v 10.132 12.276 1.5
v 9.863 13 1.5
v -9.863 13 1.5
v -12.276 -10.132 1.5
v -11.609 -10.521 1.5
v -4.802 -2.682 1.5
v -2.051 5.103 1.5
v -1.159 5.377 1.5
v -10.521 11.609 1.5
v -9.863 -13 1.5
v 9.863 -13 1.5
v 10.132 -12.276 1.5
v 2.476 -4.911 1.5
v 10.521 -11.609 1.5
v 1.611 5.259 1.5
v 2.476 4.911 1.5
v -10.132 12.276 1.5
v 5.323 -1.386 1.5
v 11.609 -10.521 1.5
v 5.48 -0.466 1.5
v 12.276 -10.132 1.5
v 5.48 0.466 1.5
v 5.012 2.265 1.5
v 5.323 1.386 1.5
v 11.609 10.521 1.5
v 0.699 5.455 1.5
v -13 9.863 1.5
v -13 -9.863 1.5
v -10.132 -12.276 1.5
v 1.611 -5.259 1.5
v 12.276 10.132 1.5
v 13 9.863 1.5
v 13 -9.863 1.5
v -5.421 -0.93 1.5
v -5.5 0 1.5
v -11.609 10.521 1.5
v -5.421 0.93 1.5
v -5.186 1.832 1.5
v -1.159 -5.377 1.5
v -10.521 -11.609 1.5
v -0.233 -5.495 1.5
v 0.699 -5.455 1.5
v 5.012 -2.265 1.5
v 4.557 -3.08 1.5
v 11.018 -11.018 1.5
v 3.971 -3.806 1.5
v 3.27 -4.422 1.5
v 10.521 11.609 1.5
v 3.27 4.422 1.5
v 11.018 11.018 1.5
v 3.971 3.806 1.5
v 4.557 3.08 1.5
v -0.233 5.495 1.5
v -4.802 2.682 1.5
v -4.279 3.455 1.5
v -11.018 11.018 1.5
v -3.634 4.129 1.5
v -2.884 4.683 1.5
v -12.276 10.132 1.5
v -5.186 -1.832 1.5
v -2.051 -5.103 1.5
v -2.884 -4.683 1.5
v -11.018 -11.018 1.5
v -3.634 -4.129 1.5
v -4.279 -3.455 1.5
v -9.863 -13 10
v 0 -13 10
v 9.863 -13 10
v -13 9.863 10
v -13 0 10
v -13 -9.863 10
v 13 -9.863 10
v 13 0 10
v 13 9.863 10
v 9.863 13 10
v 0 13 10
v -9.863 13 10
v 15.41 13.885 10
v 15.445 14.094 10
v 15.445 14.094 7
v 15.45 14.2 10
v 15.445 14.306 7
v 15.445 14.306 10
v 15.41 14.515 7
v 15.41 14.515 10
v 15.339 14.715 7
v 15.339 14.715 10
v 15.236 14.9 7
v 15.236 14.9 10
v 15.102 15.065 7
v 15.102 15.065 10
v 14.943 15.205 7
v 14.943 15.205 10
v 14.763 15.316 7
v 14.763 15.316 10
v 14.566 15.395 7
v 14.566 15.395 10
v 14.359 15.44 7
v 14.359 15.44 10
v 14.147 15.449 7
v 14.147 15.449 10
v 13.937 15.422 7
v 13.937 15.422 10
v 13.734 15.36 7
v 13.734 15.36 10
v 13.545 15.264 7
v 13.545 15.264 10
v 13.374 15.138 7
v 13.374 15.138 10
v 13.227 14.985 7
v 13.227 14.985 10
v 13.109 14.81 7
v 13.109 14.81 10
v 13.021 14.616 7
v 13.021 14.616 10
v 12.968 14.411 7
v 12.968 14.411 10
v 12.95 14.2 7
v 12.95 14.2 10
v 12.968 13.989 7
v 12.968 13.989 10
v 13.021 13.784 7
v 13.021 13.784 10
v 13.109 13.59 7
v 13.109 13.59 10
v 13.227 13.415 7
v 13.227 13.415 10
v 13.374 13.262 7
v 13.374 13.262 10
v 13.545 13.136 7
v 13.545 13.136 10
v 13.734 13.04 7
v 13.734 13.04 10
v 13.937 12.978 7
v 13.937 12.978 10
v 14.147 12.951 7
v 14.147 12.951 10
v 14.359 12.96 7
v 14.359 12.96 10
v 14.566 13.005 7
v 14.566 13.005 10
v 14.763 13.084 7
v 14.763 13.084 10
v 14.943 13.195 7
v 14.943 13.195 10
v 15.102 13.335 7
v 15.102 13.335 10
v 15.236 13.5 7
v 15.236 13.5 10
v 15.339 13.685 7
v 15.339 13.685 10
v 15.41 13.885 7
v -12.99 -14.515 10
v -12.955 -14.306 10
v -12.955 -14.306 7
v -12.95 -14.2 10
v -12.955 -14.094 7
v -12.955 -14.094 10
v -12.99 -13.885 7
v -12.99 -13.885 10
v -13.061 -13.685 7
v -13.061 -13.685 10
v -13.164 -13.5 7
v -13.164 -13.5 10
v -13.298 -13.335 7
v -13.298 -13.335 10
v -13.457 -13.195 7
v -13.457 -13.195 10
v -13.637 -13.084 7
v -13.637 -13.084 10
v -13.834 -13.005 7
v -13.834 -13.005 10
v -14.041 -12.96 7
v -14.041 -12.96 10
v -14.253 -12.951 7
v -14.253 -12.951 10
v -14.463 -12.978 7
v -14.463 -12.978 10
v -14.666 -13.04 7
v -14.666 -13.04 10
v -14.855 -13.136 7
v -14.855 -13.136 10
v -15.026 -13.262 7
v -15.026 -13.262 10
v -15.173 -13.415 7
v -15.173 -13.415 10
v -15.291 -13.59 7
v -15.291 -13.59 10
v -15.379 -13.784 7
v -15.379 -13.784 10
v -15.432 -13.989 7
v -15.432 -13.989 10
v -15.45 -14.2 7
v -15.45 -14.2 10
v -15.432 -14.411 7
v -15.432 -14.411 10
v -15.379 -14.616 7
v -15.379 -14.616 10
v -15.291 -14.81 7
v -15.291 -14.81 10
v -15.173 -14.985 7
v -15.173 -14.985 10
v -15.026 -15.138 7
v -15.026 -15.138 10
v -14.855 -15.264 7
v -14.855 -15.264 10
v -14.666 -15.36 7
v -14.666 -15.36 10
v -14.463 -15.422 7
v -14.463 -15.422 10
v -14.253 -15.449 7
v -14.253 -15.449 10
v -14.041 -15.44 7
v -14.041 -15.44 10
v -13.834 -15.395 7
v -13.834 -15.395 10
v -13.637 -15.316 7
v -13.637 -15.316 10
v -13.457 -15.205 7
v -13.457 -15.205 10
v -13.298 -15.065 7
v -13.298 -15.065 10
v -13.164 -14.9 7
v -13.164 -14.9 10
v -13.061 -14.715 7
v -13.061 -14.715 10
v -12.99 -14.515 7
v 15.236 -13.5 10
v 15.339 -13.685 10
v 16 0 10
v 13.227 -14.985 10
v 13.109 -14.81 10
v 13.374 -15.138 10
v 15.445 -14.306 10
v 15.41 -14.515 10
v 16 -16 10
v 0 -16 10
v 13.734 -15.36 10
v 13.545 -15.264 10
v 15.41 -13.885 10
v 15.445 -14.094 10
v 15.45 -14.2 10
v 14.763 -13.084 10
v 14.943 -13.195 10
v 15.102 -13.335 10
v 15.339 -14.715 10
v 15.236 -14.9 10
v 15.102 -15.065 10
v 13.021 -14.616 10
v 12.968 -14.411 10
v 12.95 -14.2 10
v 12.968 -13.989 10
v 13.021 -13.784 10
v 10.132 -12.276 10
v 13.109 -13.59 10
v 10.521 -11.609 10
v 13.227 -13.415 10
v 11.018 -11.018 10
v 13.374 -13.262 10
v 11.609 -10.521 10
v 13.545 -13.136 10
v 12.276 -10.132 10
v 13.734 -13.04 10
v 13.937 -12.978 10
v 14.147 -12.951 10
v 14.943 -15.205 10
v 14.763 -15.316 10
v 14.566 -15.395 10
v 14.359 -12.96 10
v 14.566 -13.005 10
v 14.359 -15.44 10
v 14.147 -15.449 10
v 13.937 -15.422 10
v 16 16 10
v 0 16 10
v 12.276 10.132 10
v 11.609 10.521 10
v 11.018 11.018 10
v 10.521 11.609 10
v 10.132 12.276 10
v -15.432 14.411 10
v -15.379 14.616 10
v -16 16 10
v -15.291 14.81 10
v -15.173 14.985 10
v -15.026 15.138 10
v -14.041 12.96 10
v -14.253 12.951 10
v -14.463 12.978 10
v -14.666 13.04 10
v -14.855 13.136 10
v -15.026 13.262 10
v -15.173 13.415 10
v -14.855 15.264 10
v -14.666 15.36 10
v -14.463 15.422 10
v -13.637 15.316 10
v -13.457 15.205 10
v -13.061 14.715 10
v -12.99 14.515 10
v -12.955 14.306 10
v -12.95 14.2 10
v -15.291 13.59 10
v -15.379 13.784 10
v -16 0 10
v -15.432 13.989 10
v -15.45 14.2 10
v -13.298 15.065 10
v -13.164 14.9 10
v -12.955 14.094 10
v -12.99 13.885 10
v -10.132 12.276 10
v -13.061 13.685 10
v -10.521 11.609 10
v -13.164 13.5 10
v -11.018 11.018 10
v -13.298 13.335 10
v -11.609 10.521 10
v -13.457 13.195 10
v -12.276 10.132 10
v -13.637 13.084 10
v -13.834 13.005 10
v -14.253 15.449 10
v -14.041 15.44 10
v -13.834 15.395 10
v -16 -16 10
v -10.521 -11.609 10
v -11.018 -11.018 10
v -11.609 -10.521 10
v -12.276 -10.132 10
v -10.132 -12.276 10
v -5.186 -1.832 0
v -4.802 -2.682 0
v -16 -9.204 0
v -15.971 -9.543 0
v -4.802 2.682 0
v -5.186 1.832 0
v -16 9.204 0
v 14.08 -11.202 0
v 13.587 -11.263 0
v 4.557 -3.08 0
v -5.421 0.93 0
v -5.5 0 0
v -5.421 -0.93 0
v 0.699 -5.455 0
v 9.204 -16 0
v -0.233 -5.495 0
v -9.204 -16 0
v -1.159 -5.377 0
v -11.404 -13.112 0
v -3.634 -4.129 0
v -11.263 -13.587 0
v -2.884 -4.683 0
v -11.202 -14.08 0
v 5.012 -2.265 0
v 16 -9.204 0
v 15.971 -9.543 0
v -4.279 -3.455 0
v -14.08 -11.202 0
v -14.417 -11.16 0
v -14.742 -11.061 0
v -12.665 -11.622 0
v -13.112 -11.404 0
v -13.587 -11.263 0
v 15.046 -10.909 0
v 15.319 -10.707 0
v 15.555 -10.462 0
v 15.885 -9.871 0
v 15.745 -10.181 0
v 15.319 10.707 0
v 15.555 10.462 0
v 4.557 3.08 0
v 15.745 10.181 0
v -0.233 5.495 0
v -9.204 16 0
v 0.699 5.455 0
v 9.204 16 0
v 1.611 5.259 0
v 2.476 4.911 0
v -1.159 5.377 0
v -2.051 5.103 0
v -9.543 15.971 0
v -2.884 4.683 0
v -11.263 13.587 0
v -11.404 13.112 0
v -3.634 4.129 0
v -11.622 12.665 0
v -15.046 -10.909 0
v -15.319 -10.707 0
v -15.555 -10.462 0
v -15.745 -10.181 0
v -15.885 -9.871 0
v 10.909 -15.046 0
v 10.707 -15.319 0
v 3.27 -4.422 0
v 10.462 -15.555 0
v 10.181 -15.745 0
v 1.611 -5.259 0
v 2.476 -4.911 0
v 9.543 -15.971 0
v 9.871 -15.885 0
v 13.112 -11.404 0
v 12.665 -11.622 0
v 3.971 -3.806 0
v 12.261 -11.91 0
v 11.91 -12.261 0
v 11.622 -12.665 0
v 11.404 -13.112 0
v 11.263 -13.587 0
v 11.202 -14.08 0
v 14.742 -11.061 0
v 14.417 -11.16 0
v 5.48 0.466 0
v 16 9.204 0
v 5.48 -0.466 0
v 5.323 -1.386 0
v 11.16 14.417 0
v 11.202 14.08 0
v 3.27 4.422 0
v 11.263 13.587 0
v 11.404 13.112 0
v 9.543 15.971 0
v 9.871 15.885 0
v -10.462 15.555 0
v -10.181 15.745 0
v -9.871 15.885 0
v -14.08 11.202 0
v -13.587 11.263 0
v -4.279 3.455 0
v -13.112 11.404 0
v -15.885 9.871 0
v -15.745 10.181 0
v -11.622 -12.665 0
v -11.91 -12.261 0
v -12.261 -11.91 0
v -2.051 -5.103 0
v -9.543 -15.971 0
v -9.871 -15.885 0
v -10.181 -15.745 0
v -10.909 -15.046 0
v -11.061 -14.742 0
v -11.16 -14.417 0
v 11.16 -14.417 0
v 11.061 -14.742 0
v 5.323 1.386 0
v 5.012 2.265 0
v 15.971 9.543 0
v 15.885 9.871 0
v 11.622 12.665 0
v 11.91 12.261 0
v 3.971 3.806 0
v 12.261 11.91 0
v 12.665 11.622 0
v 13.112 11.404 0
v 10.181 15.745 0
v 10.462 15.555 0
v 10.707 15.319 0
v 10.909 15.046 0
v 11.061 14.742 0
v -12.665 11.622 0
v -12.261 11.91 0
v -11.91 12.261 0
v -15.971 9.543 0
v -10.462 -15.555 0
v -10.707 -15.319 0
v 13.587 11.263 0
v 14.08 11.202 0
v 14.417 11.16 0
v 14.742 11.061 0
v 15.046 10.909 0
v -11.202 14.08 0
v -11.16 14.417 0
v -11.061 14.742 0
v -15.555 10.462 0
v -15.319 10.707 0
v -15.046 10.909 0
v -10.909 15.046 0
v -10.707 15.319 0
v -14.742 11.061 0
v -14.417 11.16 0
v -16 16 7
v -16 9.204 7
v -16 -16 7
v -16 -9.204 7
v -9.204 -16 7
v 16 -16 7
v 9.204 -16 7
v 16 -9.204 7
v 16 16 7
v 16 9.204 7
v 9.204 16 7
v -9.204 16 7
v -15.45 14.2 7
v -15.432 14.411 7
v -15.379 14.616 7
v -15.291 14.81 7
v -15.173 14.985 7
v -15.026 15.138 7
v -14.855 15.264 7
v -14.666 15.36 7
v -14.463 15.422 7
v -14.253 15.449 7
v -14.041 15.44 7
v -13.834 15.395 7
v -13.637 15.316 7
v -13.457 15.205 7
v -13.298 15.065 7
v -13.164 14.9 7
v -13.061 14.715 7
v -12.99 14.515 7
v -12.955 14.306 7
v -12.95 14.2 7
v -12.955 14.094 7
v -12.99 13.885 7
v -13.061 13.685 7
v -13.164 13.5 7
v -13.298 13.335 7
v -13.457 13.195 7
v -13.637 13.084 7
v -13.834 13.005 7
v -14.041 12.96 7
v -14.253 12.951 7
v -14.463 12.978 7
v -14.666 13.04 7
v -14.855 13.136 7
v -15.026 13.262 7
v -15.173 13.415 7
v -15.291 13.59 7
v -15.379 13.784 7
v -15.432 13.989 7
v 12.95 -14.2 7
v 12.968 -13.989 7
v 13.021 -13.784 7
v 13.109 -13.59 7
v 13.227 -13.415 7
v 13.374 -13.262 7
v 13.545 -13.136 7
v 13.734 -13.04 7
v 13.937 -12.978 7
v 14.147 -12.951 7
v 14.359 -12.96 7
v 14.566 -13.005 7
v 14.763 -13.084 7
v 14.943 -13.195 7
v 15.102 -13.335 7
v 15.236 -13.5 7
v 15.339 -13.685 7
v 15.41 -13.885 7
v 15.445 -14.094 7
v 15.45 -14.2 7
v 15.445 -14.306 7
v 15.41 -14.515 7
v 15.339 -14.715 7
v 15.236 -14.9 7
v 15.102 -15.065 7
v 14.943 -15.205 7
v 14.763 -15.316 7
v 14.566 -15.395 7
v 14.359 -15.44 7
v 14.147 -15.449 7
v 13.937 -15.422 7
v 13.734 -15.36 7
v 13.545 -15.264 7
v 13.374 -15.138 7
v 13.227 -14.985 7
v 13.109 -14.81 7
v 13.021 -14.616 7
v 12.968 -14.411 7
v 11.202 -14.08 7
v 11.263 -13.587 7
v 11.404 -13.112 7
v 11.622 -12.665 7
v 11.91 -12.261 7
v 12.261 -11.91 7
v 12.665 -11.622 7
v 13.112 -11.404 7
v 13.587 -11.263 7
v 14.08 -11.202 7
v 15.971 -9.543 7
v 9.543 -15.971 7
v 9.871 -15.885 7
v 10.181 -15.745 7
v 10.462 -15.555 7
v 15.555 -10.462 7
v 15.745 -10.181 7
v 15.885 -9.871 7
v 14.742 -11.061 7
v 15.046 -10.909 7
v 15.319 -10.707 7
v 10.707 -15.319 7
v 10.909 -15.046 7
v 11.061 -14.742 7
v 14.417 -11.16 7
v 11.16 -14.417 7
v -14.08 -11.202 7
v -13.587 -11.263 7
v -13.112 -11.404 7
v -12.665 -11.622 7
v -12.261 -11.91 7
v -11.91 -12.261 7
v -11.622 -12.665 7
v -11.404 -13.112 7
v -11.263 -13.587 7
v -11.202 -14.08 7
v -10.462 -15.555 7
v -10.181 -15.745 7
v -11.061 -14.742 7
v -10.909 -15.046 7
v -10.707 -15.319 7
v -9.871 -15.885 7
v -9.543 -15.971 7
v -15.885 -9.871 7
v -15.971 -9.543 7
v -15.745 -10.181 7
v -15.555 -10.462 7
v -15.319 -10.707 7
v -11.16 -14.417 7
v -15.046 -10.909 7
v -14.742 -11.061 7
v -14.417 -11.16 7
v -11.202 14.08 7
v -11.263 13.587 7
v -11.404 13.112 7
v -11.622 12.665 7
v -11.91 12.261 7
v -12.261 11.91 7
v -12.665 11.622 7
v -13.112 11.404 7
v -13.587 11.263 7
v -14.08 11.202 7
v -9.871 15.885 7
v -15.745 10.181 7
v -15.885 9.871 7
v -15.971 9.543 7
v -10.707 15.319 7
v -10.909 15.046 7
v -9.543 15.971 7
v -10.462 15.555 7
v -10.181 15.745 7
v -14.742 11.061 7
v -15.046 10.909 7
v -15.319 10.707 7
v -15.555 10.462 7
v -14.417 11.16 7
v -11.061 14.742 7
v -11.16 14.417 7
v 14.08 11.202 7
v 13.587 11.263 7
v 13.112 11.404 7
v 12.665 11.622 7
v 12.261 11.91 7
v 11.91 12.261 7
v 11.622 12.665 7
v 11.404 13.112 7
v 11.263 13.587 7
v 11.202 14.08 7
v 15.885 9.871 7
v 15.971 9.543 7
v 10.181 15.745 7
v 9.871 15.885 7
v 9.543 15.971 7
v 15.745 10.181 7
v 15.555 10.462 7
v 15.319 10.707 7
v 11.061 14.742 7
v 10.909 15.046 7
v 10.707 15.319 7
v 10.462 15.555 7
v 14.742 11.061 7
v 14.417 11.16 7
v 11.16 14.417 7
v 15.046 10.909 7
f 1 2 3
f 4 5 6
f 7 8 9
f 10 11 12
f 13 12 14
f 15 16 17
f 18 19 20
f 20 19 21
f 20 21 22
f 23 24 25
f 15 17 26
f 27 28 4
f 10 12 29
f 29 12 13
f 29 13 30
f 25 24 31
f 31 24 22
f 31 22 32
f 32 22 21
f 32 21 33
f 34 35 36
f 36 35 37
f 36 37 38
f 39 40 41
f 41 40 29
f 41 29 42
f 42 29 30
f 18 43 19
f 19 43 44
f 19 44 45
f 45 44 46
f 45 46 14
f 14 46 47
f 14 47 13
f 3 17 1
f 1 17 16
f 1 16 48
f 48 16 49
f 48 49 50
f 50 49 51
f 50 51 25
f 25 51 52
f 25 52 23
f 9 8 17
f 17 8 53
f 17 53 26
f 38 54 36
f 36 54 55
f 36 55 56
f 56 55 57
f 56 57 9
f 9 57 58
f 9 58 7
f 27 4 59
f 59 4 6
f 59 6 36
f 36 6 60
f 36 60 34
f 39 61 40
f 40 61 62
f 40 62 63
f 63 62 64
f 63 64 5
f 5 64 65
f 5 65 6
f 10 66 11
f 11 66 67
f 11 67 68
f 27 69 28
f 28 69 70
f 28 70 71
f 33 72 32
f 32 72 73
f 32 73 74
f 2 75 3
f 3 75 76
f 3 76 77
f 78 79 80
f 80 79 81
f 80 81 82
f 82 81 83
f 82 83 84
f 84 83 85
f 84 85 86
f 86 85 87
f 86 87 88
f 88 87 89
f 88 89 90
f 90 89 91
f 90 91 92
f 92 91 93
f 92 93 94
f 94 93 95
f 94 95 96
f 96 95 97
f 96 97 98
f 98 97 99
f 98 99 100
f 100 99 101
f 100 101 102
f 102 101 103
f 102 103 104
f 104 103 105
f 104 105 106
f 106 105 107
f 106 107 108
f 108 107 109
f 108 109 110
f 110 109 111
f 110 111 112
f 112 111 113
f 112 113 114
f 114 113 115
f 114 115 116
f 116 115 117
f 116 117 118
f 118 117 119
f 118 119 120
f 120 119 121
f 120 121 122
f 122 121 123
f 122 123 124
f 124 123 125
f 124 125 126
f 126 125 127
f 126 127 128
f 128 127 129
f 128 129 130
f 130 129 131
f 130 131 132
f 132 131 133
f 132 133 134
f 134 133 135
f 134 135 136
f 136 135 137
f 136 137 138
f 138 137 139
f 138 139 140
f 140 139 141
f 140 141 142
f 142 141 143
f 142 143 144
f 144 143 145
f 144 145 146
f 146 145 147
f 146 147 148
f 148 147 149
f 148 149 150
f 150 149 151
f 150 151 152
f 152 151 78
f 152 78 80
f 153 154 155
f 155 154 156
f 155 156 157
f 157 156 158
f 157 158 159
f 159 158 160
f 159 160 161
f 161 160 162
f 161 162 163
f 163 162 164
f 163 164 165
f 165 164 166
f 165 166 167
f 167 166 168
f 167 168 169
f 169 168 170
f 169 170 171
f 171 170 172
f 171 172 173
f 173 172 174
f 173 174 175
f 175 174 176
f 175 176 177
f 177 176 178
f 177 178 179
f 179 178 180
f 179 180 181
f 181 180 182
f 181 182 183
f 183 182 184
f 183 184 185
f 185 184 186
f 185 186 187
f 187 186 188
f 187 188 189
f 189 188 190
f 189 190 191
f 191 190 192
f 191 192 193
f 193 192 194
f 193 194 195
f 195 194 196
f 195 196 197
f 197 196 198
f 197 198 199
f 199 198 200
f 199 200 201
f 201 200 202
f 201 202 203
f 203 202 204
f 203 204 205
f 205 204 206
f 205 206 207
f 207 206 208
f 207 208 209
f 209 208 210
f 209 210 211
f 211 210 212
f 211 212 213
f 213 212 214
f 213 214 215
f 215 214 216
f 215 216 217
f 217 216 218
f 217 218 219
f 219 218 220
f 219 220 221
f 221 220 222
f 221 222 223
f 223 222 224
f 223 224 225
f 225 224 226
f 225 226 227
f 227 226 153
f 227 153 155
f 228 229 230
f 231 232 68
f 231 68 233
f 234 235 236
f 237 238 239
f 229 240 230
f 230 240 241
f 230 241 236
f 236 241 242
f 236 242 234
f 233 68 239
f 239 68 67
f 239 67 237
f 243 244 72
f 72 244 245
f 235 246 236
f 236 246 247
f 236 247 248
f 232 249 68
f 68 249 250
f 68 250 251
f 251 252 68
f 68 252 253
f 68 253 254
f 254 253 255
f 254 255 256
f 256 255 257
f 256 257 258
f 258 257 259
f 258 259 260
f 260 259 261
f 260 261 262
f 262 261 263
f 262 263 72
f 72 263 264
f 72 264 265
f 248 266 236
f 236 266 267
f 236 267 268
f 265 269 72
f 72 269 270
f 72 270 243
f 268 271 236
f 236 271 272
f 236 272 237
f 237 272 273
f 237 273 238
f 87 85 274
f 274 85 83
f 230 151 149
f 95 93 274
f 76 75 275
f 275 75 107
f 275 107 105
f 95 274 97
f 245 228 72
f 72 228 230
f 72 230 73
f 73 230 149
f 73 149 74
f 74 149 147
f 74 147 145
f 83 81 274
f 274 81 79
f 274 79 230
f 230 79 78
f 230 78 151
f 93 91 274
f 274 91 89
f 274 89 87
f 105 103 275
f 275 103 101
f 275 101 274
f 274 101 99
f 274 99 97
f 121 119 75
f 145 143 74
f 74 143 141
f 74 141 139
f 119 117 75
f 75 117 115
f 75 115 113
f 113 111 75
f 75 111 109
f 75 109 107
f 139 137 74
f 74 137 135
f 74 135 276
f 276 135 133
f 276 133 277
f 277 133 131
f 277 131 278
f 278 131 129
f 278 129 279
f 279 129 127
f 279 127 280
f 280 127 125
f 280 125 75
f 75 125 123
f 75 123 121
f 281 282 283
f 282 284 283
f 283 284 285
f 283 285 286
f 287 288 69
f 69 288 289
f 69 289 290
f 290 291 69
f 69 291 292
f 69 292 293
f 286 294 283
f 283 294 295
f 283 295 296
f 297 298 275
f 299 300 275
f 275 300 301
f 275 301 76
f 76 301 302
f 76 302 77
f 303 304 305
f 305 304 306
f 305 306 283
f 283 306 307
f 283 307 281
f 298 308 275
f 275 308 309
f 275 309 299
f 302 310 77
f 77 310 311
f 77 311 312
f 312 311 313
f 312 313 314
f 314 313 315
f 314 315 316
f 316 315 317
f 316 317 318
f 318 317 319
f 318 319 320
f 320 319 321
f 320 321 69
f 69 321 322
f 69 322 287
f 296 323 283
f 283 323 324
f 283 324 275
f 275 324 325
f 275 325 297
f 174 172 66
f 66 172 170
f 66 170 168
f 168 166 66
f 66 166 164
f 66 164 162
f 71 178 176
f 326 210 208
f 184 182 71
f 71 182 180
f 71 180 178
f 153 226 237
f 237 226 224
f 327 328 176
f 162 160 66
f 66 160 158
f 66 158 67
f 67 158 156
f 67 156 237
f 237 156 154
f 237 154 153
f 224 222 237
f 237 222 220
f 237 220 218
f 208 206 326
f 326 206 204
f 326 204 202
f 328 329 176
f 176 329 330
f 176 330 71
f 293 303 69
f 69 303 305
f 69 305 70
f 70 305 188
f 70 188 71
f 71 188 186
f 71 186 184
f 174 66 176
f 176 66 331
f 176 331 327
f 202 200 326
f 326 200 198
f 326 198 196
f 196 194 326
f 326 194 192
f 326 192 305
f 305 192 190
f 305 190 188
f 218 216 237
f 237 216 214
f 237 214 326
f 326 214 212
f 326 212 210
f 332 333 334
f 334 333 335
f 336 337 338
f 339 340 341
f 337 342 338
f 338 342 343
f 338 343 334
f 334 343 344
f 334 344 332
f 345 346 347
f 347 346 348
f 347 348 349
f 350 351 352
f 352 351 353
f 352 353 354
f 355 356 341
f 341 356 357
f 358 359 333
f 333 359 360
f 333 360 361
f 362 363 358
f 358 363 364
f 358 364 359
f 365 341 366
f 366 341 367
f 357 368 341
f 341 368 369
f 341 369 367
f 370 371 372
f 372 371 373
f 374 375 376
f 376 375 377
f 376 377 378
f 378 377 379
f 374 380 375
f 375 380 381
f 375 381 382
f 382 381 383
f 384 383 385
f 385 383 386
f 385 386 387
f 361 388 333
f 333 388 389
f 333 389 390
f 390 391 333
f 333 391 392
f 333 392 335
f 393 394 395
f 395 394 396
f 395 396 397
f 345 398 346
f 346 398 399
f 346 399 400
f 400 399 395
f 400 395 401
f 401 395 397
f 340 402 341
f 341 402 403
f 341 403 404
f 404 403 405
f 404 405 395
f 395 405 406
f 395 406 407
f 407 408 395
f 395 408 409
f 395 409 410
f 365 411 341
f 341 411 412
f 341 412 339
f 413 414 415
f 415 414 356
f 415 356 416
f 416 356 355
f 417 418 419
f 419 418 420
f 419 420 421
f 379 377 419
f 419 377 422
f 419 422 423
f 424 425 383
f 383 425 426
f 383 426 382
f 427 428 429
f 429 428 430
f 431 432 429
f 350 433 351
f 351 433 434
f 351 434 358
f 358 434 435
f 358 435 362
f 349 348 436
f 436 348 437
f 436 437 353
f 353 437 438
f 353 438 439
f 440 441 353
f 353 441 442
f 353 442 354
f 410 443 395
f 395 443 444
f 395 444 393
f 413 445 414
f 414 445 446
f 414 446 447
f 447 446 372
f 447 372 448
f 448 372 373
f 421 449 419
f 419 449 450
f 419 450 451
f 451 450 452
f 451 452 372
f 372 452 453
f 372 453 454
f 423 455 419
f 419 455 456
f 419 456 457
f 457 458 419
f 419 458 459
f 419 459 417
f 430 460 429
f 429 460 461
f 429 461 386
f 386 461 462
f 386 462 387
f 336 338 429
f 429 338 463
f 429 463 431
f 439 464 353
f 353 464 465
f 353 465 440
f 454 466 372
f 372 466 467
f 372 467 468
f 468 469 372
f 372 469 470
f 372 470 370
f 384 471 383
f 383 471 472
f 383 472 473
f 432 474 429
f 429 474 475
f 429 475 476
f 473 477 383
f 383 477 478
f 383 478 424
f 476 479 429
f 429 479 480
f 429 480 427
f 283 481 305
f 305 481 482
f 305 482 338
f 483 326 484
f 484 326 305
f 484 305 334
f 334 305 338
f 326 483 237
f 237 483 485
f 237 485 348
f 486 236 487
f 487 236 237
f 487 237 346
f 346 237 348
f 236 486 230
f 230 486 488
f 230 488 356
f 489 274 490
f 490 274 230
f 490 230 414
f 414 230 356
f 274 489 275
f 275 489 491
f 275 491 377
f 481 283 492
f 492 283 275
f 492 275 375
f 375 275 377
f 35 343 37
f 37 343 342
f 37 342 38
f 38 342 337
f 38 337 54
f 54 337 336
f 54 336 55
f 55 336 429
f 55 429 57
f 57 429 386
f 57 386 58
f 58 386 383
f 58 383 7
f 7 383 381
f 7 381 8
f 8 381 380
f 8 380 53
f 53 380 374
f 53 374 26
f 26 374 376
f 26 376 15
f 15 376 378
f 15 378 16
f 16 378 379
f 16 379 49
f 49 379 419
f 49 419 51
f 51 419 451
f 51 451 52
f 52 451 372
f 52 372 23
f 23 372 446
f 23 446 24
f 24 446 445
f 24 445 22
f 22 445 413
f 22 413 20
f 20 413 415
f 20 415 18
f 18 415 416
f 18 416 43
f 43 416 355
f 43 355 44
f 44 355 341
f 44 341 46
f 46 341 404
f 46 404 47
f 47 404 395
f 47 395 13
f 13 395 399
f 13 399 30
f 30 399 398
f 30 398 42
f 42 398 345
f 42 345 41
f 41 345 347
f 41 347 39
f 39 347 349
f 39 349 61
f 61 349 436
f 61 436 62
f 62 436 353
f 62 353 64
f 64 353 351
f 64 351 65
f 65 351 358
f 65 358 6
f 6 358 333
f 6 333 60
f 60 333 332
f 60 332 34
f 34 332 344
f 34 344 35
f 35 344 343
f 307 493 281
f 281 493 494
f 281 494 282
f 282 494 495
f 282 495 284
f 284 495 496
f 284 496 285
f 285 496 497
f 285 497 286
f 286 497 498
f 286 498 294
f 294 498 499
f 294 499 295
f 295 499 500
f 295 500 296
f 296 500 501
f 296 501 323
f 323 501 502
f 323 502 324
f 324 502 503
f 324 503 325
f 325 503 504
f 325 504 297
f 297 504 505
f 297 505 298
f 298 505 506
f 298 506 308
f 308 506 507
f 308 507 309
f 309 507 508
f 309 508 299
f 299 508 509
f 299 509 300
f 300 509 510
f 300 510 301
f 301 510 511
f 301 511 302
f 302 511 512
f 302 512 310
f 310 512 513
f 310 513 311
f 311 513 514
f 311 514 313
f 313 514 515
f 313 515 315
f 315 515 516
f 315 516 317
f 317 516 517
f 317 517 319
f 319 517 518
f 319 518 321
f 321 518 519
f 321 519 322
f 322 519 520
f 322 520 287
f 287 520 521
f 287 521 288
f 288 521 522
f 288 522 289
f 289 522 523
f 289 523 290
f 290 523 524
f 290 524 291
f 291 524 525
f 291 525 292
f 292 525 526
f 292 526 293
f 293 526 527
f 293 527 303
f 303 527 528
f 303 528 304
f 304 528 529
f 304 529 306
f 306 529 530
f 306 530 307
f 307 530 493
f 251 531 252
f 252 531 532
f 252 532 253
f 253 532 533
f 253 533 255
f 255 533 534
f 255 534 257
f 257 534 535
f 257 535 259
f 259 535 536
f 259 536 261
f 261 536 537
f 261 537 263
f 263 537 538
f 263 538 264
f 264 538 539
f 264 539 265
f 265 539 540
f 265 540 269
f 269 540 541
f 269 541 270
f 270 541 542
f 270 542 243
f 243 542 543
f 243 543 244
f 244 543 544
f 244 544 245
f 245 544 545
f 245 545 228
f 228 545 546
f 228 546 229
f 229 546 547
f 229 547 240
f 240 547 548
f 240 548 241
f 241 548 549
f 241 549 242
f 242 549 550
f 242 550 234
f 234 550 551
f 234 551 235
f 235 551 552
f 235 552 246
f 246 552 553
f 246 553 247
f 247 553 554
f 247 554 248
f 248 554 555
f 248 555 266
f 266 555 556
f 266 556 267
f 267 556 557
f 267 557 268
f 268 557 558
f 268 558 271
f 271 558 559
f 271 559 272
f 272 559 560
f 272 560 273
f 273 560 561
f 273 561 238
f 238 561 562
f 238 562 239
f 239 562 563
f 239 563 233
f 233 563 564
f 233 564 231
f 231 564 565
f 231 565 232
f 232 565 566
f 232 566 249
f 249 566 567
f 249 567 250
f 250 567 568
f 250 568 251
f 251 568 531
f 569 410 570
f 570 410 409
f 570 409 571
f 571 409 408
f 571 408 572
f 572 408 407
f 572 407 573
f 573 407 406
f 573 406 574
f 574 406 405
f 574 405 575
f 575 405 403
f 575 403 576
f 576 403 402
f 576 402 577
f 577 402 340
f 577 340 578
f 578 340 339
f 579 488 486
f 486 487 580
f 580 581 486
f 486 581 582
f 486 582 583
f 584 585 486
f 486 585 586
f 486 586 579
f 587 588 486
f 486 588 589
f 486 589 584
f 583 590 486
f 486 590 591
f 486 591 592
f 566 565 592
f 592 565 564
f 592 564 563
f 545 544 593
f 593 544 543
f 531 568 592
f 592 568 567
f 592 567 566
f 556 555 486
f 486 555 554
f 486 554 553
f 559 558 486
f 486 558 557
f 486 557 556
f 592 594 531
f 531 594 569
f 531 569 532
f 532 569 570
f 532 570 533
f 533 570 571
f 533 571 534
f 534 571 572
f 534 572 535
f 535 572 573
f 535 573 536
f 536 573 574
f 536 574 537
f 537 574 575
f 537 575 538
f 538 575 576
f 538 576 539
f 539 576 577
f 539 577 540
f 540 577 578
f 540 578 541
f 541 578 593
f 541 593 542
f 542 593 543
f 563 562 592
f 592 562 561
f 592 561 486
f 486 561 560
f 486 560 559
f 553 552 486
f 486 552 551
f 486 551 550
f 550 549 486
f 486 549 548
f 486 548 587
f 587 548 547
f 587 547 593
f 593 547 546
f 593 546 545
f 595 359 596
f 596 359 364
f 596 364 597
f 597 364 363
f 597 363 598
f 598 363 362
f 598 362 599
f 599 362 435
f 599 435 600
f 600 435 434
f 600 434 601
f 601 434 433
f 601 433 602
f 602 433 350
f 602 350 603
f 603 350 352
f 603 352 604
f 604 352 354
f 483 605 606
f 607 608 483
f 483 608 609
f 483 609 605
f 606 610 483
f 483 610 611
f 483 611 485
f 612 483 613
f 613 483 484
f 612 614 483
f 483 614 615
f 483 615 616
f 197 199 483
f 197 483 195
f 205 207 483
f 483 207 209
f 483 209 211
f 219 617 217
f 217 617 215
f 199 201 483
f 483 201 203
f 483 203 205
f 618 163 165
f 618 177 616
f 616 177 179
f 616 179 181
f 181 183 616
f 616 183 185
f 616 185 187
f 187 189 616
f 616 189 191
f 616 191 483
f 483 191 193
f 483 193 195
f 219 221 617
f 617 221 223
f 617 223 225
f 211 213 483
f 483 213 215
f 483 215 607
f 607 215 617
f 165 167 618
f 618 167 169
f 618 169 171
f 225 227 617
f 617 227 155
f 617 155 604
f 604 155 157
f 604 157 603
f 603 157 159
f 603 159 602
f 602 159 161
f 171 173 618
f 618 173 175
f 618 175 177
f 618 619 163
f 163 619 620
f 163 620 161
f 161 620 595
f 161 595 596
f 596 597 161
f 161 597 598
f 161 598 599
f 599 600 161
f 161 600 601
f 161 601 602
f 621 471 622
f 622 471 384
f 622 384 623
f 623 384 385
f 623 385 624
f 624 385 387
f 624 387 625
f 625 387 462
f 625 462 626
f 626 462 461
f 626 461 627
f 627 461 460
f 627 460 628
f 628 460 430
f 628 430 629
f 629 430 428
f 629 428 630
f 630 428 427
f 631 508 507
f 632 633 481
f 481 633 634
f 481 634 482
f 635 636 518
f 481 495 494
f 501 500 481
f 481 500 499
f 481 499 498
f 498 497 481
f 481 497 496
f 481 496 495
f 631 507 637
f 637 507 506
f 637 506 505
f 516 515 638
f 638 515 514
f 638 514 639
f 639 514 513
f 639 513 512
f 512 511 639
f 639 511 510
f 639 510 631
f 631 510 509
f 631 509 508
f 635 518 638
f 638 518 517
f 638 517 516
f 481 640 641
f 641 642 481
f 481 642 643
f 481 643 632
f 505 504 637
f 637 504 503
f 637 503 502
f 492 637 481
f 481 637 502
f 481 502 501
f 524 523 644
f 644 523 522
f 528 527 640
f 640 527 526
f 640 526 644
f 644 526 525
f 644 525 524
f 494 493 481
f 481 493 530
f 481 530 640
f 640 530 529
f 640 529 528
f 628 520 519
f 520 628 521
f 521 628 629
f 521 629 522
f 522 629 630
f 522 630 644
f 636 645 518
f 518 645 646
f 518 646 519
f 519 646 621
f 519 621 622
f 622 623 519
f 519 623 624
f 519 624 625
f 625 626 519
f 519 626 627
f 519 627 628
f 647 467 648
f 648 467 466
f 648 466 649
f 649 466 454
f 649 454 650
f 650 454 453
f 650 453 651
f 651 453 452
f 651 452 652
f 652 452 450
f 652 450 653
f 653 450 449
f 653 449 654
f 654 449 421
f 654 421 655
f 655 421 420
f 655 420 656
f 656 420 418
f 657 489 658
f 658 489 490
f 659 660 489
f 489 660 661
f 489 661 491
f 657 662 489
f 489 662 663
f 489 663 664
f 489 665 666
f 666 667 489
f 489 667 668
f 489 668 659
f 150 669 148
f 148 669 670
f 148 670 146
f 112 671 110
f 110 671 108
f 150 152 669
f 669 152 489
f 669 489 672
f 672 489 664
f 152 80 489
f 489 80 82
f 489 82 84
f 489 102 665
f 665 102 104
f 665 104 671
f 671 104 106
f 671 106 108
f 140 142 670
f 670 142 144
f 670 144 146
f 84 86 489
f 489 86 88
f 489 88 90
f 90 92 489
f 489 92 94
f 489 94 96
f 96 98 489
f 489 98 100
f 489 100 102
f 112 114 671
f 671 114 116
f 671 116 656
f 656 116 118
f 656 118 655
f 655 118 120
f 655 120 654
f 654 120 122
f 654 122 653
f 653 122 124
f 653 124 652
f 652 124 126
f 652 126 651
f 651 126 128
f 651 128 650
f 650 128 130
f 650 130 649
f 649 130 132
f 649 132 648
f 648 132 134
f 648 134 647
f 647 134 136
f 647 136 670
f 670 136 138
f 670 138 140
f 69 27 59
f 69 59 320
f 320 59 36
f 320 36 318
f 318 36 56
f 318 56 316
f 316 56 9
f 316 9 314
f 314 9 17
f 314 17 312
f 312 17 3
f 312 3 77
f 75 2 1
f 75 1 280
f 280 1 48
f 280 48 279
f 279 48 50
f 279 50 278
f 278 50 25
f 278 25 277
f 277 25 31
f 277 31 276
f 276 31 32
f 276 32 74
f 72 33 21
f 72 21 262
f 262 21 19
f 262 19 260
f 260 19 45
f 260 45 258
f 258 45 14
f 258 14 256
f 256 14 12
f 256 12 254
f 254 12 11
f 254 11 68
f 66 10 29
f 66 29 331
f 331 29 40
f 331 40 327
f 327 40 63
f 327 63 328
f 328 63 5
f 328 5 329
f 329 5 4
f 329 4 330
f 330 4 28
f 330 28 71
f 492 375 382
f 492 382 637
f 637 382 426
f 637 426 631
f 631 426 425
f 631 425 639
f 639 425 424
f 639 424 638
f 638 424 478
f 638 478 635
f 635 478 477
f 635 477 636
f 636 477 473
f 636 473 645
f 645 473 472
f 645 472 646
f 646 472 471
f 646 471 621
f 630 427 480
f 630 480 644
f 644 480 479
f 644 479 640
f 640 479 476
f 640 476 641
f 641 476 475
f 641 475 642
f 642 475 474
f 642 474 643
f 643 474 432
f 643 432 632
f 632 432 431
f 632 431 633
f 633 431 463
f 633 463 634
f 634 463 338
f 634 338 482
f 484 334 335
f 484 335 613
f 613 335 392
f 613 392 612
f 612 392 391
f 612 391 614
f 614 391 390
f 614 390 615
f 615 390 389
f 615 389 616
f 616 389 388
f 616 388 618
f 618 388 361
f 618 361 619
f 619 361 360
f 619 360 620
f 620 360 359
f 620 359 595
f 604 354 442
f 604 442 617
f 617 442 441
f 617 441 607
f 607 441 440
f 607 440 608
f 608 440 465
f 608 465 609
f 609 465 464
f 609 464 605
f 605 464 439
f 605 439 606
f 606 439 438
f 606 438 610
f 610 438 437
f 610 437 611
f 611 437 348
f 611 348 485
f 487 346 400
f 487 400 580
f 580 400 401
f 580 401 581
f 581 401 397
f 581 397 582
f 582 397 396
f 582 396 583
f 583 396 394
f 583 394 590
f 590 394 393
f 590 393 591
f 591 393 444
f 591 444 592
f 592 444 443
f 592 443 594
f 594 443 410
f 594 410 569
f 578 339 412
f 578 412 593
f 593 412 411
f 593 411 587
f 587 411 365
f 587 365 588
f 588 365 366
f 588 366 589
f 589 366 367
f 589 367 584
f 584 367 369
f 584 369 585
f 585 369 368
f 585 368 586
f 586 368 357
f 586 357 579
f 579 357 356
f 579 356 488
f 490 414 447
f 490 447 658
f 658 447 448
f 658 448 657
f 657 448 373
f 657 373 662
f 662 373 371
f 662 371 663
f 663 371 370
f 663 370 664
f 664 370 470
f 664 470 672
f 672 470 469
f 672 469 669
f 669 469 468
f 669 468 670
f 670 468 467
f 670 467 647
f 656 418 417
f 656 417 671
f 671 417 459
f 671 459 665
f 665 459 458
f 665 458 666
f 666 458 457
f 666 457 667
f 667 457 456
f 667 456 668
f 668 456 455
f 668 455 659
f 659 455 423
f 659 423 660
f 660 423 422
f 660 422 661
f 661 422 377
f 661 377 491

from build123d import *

# Parameters (mm, degrees)
SKETCH1_W           = 32
SKETCH1_H           = 32
SKETCH1_W_2         = 26
SKETCH1_H_2         = 26
BOSS_EXTRUDE1_DEPTH = 10
SKETCH2_W           = 26
SKETCH2_H           = 26
BOSS_EXTRUDE2_DEPTH = 1.5
SKETCH3_R           = 5.5
CUT_EXTRUDE1_DEPTH  = 9.5
SKETCH4_R           = 1.25
CUT_EXTRUDE2_DEPTH  = 21.5
SKETCH6_R           = 3
CUT_EXTRUDE3_DEPTH  = 7
SKETCH7_R           = 1.25
BOSS_EXTRUDE3_DEPTH = 3
CIRPATTERN1_COUNT   = 4
BOSS_EXTRUDE4_DEPTH = 8.5
CIRPATTERN2_COUNT   = 4
FILLET1_R           = 2


with BuildPart() as part:
    # Sketch1 → Boss-Extrude1 (new body)
    with BuildSketch(Plane.XY):
        Rectangle(SKETCH1_W, SKETCH1_H)
        Rectangle(SKETCH1_W_2, SKETCH1_H_2, mode=Mode.SUBTRACT)
    extrude(amount=BOSS_EXTRUDE1_DEPTH)

    # Sketch2 → Boss-Extrude2 (add)
    with BuildSketch(Plane(origin=(0, 0, 0), x_dir=(-1, 0, 0), z_dir=(0, 0, -1))):
        Rectangle(SKETCH2_W, SKETCH2_H)
    extrude(amount=-BOSS_EXTRUDE2_DEPTH)

    # Sketch3 → Cut-Extrude1 (cut)
    with BuildSketch(Plane(origin=(0, 0, 0), x_dir=(-1, 0, 0), z_dir=(0, 0, -1))):
        Circle(SKETCH3_R)
    extrude(amount=-CUT_EXTRUDE1_DEPTH, mode=Mode.SUBTRACT)

    # Sketch4 → Cut-Extrude2 (cut)
    with BuildSketch(Plane(origin=(0, 0, 0), x_dir=(-1, 0, 0), z_dir=(0, 0, -1))):
        with Locations((-14.2, 14.2)):
            Circle(SKETCH4_R)
        with Locations((14.2, 14.2)):
            Circle(SKETCH4_R)
        with Locations((14.2, -14.2)):
            Circle(SKETCH4_R)
        with Locations((-14.2, -14.2)):
            Circle(SKETCH4_R)
    extrude(amount=-CUT_EXTRUDE2_DEPTH, mode=Mode.SUBTRACT)

    # Sketch6 → Cut-Extrude3 (cut)
    with BuildSketch(Plane(origin=(0, 0, 0), x_dir=(-1, 0, 0), z_dir=(0, 0, -1))):
        with Locations((-14.2, 14.2)):
            Circle(SKETCH6_R)
        with Locations((14.2, 14.2)):
            Circle(SKETCH6_R)
        with Locations((14.2, -14.2)):
            Circle(SKETCH6_R)
        with Locations((-14.2, -14.2)):
            Circle(SKETCH6_R)
    extrude(amount=-CUT_EXTRUDE3_DEPTH, mode=Mode.SUBTRACT)

    # Sketch7 → Boss-Extrude3 (add)
    with BuildSketch(Plane(origin=(0, 0, 7), x_dir=(-1, 0, 0), z_dir=(0, 0, -1))):
        with BuildLine():
            ThreePointArc((11.8, 16), (11.220158645, 14.54719663), (11.450454583, 13))
            Line((11.450454583, 13), (13, 13))
            Line((13, 13), (13, 11.450454583))
            ThreePointArc((13, 11.450454583), (14.54719663, 11.220158645), (16, 11.8))
            Line((16, 11.8), (16, 16))
            Line((16, 16), (11.8, 16))
        make_face()
        with Locations((14.2, 14.2)):
            Circle(SKETCH7_R, mode=Mode.SUBTRACT)
        with BuildLine():
            Line((13, 13), (11.450454583, 13))
            ThreePointArc((11.450454583, 13), (12.078679656, 12.078679656), (13, 11.450454583))
            Line((13, 11.450454583), (13, 13))
        make_face()
    boss_extrude3 = extrude(amount=-BOSS_EXTRUDE3_DEPTH)

    # CirPattern1: Boss-Extrude3 ×4 about axis
    cirpattern1_axis = Axis((0, 0, 9.5), (0, 0, -1))
    for i in range(1, CIRPATTERN1_COUNT):
        add(boss_extrude3.rotate(cirpattern1_axis, i * 360 / CIRPATTERN1_COUNT))

    # Sketch8 → Boss-Extrude4 (add)
    with BuildSketch(Plane.XY.offset(1.5)):
        with BuildLine():
            ThreePointArc((-11.450454583, 13), (-12.078679656, 12.078679656), (-13, 11.450454583))
            Line((-13, 11.450454583), (-13, 9.862950312))
            ThreePointArc((-13, 9.862950312), (-11.018019485, 11.018019485), (-9.862950312, 13))
            Line((-9.862950312, 13), (-11.450454583, 13))
        make_face()
    boss_extrude4 = extrude(amount=BOSS_EXTRUDE4_DEPTH)

    # CirPattern2: Boss-Extrude4 ×4 about axis
    cirpattern2_axis = Axis((0, 0, 0), (0, 0, 1))
    for i in range(1, CIRPATTERN2_COUNT):
        add(boss_extrude4.rotate(cirpattern2_axis, i * 360 / CIRPATTERN2_COUNT))

    # Fillet1
    fillet1_edges = [part.edges().sort_by_distance(p)[0] for p in [
        (-16, -11.8, 3.5),
        (-11.8, -16, 3.5),
        (-16, 11.8, 3.5),
        (-11.8, 16, 3.5),
        (16, 11.8, 3.5),
        (11.8, 16, 3.5),
        (11.8, -16, 3.5),
        (16, -11.8, 3.5),
    ]]
    fillet(fillet1_edges, radius=FILLET1_R)


solid = part.part
